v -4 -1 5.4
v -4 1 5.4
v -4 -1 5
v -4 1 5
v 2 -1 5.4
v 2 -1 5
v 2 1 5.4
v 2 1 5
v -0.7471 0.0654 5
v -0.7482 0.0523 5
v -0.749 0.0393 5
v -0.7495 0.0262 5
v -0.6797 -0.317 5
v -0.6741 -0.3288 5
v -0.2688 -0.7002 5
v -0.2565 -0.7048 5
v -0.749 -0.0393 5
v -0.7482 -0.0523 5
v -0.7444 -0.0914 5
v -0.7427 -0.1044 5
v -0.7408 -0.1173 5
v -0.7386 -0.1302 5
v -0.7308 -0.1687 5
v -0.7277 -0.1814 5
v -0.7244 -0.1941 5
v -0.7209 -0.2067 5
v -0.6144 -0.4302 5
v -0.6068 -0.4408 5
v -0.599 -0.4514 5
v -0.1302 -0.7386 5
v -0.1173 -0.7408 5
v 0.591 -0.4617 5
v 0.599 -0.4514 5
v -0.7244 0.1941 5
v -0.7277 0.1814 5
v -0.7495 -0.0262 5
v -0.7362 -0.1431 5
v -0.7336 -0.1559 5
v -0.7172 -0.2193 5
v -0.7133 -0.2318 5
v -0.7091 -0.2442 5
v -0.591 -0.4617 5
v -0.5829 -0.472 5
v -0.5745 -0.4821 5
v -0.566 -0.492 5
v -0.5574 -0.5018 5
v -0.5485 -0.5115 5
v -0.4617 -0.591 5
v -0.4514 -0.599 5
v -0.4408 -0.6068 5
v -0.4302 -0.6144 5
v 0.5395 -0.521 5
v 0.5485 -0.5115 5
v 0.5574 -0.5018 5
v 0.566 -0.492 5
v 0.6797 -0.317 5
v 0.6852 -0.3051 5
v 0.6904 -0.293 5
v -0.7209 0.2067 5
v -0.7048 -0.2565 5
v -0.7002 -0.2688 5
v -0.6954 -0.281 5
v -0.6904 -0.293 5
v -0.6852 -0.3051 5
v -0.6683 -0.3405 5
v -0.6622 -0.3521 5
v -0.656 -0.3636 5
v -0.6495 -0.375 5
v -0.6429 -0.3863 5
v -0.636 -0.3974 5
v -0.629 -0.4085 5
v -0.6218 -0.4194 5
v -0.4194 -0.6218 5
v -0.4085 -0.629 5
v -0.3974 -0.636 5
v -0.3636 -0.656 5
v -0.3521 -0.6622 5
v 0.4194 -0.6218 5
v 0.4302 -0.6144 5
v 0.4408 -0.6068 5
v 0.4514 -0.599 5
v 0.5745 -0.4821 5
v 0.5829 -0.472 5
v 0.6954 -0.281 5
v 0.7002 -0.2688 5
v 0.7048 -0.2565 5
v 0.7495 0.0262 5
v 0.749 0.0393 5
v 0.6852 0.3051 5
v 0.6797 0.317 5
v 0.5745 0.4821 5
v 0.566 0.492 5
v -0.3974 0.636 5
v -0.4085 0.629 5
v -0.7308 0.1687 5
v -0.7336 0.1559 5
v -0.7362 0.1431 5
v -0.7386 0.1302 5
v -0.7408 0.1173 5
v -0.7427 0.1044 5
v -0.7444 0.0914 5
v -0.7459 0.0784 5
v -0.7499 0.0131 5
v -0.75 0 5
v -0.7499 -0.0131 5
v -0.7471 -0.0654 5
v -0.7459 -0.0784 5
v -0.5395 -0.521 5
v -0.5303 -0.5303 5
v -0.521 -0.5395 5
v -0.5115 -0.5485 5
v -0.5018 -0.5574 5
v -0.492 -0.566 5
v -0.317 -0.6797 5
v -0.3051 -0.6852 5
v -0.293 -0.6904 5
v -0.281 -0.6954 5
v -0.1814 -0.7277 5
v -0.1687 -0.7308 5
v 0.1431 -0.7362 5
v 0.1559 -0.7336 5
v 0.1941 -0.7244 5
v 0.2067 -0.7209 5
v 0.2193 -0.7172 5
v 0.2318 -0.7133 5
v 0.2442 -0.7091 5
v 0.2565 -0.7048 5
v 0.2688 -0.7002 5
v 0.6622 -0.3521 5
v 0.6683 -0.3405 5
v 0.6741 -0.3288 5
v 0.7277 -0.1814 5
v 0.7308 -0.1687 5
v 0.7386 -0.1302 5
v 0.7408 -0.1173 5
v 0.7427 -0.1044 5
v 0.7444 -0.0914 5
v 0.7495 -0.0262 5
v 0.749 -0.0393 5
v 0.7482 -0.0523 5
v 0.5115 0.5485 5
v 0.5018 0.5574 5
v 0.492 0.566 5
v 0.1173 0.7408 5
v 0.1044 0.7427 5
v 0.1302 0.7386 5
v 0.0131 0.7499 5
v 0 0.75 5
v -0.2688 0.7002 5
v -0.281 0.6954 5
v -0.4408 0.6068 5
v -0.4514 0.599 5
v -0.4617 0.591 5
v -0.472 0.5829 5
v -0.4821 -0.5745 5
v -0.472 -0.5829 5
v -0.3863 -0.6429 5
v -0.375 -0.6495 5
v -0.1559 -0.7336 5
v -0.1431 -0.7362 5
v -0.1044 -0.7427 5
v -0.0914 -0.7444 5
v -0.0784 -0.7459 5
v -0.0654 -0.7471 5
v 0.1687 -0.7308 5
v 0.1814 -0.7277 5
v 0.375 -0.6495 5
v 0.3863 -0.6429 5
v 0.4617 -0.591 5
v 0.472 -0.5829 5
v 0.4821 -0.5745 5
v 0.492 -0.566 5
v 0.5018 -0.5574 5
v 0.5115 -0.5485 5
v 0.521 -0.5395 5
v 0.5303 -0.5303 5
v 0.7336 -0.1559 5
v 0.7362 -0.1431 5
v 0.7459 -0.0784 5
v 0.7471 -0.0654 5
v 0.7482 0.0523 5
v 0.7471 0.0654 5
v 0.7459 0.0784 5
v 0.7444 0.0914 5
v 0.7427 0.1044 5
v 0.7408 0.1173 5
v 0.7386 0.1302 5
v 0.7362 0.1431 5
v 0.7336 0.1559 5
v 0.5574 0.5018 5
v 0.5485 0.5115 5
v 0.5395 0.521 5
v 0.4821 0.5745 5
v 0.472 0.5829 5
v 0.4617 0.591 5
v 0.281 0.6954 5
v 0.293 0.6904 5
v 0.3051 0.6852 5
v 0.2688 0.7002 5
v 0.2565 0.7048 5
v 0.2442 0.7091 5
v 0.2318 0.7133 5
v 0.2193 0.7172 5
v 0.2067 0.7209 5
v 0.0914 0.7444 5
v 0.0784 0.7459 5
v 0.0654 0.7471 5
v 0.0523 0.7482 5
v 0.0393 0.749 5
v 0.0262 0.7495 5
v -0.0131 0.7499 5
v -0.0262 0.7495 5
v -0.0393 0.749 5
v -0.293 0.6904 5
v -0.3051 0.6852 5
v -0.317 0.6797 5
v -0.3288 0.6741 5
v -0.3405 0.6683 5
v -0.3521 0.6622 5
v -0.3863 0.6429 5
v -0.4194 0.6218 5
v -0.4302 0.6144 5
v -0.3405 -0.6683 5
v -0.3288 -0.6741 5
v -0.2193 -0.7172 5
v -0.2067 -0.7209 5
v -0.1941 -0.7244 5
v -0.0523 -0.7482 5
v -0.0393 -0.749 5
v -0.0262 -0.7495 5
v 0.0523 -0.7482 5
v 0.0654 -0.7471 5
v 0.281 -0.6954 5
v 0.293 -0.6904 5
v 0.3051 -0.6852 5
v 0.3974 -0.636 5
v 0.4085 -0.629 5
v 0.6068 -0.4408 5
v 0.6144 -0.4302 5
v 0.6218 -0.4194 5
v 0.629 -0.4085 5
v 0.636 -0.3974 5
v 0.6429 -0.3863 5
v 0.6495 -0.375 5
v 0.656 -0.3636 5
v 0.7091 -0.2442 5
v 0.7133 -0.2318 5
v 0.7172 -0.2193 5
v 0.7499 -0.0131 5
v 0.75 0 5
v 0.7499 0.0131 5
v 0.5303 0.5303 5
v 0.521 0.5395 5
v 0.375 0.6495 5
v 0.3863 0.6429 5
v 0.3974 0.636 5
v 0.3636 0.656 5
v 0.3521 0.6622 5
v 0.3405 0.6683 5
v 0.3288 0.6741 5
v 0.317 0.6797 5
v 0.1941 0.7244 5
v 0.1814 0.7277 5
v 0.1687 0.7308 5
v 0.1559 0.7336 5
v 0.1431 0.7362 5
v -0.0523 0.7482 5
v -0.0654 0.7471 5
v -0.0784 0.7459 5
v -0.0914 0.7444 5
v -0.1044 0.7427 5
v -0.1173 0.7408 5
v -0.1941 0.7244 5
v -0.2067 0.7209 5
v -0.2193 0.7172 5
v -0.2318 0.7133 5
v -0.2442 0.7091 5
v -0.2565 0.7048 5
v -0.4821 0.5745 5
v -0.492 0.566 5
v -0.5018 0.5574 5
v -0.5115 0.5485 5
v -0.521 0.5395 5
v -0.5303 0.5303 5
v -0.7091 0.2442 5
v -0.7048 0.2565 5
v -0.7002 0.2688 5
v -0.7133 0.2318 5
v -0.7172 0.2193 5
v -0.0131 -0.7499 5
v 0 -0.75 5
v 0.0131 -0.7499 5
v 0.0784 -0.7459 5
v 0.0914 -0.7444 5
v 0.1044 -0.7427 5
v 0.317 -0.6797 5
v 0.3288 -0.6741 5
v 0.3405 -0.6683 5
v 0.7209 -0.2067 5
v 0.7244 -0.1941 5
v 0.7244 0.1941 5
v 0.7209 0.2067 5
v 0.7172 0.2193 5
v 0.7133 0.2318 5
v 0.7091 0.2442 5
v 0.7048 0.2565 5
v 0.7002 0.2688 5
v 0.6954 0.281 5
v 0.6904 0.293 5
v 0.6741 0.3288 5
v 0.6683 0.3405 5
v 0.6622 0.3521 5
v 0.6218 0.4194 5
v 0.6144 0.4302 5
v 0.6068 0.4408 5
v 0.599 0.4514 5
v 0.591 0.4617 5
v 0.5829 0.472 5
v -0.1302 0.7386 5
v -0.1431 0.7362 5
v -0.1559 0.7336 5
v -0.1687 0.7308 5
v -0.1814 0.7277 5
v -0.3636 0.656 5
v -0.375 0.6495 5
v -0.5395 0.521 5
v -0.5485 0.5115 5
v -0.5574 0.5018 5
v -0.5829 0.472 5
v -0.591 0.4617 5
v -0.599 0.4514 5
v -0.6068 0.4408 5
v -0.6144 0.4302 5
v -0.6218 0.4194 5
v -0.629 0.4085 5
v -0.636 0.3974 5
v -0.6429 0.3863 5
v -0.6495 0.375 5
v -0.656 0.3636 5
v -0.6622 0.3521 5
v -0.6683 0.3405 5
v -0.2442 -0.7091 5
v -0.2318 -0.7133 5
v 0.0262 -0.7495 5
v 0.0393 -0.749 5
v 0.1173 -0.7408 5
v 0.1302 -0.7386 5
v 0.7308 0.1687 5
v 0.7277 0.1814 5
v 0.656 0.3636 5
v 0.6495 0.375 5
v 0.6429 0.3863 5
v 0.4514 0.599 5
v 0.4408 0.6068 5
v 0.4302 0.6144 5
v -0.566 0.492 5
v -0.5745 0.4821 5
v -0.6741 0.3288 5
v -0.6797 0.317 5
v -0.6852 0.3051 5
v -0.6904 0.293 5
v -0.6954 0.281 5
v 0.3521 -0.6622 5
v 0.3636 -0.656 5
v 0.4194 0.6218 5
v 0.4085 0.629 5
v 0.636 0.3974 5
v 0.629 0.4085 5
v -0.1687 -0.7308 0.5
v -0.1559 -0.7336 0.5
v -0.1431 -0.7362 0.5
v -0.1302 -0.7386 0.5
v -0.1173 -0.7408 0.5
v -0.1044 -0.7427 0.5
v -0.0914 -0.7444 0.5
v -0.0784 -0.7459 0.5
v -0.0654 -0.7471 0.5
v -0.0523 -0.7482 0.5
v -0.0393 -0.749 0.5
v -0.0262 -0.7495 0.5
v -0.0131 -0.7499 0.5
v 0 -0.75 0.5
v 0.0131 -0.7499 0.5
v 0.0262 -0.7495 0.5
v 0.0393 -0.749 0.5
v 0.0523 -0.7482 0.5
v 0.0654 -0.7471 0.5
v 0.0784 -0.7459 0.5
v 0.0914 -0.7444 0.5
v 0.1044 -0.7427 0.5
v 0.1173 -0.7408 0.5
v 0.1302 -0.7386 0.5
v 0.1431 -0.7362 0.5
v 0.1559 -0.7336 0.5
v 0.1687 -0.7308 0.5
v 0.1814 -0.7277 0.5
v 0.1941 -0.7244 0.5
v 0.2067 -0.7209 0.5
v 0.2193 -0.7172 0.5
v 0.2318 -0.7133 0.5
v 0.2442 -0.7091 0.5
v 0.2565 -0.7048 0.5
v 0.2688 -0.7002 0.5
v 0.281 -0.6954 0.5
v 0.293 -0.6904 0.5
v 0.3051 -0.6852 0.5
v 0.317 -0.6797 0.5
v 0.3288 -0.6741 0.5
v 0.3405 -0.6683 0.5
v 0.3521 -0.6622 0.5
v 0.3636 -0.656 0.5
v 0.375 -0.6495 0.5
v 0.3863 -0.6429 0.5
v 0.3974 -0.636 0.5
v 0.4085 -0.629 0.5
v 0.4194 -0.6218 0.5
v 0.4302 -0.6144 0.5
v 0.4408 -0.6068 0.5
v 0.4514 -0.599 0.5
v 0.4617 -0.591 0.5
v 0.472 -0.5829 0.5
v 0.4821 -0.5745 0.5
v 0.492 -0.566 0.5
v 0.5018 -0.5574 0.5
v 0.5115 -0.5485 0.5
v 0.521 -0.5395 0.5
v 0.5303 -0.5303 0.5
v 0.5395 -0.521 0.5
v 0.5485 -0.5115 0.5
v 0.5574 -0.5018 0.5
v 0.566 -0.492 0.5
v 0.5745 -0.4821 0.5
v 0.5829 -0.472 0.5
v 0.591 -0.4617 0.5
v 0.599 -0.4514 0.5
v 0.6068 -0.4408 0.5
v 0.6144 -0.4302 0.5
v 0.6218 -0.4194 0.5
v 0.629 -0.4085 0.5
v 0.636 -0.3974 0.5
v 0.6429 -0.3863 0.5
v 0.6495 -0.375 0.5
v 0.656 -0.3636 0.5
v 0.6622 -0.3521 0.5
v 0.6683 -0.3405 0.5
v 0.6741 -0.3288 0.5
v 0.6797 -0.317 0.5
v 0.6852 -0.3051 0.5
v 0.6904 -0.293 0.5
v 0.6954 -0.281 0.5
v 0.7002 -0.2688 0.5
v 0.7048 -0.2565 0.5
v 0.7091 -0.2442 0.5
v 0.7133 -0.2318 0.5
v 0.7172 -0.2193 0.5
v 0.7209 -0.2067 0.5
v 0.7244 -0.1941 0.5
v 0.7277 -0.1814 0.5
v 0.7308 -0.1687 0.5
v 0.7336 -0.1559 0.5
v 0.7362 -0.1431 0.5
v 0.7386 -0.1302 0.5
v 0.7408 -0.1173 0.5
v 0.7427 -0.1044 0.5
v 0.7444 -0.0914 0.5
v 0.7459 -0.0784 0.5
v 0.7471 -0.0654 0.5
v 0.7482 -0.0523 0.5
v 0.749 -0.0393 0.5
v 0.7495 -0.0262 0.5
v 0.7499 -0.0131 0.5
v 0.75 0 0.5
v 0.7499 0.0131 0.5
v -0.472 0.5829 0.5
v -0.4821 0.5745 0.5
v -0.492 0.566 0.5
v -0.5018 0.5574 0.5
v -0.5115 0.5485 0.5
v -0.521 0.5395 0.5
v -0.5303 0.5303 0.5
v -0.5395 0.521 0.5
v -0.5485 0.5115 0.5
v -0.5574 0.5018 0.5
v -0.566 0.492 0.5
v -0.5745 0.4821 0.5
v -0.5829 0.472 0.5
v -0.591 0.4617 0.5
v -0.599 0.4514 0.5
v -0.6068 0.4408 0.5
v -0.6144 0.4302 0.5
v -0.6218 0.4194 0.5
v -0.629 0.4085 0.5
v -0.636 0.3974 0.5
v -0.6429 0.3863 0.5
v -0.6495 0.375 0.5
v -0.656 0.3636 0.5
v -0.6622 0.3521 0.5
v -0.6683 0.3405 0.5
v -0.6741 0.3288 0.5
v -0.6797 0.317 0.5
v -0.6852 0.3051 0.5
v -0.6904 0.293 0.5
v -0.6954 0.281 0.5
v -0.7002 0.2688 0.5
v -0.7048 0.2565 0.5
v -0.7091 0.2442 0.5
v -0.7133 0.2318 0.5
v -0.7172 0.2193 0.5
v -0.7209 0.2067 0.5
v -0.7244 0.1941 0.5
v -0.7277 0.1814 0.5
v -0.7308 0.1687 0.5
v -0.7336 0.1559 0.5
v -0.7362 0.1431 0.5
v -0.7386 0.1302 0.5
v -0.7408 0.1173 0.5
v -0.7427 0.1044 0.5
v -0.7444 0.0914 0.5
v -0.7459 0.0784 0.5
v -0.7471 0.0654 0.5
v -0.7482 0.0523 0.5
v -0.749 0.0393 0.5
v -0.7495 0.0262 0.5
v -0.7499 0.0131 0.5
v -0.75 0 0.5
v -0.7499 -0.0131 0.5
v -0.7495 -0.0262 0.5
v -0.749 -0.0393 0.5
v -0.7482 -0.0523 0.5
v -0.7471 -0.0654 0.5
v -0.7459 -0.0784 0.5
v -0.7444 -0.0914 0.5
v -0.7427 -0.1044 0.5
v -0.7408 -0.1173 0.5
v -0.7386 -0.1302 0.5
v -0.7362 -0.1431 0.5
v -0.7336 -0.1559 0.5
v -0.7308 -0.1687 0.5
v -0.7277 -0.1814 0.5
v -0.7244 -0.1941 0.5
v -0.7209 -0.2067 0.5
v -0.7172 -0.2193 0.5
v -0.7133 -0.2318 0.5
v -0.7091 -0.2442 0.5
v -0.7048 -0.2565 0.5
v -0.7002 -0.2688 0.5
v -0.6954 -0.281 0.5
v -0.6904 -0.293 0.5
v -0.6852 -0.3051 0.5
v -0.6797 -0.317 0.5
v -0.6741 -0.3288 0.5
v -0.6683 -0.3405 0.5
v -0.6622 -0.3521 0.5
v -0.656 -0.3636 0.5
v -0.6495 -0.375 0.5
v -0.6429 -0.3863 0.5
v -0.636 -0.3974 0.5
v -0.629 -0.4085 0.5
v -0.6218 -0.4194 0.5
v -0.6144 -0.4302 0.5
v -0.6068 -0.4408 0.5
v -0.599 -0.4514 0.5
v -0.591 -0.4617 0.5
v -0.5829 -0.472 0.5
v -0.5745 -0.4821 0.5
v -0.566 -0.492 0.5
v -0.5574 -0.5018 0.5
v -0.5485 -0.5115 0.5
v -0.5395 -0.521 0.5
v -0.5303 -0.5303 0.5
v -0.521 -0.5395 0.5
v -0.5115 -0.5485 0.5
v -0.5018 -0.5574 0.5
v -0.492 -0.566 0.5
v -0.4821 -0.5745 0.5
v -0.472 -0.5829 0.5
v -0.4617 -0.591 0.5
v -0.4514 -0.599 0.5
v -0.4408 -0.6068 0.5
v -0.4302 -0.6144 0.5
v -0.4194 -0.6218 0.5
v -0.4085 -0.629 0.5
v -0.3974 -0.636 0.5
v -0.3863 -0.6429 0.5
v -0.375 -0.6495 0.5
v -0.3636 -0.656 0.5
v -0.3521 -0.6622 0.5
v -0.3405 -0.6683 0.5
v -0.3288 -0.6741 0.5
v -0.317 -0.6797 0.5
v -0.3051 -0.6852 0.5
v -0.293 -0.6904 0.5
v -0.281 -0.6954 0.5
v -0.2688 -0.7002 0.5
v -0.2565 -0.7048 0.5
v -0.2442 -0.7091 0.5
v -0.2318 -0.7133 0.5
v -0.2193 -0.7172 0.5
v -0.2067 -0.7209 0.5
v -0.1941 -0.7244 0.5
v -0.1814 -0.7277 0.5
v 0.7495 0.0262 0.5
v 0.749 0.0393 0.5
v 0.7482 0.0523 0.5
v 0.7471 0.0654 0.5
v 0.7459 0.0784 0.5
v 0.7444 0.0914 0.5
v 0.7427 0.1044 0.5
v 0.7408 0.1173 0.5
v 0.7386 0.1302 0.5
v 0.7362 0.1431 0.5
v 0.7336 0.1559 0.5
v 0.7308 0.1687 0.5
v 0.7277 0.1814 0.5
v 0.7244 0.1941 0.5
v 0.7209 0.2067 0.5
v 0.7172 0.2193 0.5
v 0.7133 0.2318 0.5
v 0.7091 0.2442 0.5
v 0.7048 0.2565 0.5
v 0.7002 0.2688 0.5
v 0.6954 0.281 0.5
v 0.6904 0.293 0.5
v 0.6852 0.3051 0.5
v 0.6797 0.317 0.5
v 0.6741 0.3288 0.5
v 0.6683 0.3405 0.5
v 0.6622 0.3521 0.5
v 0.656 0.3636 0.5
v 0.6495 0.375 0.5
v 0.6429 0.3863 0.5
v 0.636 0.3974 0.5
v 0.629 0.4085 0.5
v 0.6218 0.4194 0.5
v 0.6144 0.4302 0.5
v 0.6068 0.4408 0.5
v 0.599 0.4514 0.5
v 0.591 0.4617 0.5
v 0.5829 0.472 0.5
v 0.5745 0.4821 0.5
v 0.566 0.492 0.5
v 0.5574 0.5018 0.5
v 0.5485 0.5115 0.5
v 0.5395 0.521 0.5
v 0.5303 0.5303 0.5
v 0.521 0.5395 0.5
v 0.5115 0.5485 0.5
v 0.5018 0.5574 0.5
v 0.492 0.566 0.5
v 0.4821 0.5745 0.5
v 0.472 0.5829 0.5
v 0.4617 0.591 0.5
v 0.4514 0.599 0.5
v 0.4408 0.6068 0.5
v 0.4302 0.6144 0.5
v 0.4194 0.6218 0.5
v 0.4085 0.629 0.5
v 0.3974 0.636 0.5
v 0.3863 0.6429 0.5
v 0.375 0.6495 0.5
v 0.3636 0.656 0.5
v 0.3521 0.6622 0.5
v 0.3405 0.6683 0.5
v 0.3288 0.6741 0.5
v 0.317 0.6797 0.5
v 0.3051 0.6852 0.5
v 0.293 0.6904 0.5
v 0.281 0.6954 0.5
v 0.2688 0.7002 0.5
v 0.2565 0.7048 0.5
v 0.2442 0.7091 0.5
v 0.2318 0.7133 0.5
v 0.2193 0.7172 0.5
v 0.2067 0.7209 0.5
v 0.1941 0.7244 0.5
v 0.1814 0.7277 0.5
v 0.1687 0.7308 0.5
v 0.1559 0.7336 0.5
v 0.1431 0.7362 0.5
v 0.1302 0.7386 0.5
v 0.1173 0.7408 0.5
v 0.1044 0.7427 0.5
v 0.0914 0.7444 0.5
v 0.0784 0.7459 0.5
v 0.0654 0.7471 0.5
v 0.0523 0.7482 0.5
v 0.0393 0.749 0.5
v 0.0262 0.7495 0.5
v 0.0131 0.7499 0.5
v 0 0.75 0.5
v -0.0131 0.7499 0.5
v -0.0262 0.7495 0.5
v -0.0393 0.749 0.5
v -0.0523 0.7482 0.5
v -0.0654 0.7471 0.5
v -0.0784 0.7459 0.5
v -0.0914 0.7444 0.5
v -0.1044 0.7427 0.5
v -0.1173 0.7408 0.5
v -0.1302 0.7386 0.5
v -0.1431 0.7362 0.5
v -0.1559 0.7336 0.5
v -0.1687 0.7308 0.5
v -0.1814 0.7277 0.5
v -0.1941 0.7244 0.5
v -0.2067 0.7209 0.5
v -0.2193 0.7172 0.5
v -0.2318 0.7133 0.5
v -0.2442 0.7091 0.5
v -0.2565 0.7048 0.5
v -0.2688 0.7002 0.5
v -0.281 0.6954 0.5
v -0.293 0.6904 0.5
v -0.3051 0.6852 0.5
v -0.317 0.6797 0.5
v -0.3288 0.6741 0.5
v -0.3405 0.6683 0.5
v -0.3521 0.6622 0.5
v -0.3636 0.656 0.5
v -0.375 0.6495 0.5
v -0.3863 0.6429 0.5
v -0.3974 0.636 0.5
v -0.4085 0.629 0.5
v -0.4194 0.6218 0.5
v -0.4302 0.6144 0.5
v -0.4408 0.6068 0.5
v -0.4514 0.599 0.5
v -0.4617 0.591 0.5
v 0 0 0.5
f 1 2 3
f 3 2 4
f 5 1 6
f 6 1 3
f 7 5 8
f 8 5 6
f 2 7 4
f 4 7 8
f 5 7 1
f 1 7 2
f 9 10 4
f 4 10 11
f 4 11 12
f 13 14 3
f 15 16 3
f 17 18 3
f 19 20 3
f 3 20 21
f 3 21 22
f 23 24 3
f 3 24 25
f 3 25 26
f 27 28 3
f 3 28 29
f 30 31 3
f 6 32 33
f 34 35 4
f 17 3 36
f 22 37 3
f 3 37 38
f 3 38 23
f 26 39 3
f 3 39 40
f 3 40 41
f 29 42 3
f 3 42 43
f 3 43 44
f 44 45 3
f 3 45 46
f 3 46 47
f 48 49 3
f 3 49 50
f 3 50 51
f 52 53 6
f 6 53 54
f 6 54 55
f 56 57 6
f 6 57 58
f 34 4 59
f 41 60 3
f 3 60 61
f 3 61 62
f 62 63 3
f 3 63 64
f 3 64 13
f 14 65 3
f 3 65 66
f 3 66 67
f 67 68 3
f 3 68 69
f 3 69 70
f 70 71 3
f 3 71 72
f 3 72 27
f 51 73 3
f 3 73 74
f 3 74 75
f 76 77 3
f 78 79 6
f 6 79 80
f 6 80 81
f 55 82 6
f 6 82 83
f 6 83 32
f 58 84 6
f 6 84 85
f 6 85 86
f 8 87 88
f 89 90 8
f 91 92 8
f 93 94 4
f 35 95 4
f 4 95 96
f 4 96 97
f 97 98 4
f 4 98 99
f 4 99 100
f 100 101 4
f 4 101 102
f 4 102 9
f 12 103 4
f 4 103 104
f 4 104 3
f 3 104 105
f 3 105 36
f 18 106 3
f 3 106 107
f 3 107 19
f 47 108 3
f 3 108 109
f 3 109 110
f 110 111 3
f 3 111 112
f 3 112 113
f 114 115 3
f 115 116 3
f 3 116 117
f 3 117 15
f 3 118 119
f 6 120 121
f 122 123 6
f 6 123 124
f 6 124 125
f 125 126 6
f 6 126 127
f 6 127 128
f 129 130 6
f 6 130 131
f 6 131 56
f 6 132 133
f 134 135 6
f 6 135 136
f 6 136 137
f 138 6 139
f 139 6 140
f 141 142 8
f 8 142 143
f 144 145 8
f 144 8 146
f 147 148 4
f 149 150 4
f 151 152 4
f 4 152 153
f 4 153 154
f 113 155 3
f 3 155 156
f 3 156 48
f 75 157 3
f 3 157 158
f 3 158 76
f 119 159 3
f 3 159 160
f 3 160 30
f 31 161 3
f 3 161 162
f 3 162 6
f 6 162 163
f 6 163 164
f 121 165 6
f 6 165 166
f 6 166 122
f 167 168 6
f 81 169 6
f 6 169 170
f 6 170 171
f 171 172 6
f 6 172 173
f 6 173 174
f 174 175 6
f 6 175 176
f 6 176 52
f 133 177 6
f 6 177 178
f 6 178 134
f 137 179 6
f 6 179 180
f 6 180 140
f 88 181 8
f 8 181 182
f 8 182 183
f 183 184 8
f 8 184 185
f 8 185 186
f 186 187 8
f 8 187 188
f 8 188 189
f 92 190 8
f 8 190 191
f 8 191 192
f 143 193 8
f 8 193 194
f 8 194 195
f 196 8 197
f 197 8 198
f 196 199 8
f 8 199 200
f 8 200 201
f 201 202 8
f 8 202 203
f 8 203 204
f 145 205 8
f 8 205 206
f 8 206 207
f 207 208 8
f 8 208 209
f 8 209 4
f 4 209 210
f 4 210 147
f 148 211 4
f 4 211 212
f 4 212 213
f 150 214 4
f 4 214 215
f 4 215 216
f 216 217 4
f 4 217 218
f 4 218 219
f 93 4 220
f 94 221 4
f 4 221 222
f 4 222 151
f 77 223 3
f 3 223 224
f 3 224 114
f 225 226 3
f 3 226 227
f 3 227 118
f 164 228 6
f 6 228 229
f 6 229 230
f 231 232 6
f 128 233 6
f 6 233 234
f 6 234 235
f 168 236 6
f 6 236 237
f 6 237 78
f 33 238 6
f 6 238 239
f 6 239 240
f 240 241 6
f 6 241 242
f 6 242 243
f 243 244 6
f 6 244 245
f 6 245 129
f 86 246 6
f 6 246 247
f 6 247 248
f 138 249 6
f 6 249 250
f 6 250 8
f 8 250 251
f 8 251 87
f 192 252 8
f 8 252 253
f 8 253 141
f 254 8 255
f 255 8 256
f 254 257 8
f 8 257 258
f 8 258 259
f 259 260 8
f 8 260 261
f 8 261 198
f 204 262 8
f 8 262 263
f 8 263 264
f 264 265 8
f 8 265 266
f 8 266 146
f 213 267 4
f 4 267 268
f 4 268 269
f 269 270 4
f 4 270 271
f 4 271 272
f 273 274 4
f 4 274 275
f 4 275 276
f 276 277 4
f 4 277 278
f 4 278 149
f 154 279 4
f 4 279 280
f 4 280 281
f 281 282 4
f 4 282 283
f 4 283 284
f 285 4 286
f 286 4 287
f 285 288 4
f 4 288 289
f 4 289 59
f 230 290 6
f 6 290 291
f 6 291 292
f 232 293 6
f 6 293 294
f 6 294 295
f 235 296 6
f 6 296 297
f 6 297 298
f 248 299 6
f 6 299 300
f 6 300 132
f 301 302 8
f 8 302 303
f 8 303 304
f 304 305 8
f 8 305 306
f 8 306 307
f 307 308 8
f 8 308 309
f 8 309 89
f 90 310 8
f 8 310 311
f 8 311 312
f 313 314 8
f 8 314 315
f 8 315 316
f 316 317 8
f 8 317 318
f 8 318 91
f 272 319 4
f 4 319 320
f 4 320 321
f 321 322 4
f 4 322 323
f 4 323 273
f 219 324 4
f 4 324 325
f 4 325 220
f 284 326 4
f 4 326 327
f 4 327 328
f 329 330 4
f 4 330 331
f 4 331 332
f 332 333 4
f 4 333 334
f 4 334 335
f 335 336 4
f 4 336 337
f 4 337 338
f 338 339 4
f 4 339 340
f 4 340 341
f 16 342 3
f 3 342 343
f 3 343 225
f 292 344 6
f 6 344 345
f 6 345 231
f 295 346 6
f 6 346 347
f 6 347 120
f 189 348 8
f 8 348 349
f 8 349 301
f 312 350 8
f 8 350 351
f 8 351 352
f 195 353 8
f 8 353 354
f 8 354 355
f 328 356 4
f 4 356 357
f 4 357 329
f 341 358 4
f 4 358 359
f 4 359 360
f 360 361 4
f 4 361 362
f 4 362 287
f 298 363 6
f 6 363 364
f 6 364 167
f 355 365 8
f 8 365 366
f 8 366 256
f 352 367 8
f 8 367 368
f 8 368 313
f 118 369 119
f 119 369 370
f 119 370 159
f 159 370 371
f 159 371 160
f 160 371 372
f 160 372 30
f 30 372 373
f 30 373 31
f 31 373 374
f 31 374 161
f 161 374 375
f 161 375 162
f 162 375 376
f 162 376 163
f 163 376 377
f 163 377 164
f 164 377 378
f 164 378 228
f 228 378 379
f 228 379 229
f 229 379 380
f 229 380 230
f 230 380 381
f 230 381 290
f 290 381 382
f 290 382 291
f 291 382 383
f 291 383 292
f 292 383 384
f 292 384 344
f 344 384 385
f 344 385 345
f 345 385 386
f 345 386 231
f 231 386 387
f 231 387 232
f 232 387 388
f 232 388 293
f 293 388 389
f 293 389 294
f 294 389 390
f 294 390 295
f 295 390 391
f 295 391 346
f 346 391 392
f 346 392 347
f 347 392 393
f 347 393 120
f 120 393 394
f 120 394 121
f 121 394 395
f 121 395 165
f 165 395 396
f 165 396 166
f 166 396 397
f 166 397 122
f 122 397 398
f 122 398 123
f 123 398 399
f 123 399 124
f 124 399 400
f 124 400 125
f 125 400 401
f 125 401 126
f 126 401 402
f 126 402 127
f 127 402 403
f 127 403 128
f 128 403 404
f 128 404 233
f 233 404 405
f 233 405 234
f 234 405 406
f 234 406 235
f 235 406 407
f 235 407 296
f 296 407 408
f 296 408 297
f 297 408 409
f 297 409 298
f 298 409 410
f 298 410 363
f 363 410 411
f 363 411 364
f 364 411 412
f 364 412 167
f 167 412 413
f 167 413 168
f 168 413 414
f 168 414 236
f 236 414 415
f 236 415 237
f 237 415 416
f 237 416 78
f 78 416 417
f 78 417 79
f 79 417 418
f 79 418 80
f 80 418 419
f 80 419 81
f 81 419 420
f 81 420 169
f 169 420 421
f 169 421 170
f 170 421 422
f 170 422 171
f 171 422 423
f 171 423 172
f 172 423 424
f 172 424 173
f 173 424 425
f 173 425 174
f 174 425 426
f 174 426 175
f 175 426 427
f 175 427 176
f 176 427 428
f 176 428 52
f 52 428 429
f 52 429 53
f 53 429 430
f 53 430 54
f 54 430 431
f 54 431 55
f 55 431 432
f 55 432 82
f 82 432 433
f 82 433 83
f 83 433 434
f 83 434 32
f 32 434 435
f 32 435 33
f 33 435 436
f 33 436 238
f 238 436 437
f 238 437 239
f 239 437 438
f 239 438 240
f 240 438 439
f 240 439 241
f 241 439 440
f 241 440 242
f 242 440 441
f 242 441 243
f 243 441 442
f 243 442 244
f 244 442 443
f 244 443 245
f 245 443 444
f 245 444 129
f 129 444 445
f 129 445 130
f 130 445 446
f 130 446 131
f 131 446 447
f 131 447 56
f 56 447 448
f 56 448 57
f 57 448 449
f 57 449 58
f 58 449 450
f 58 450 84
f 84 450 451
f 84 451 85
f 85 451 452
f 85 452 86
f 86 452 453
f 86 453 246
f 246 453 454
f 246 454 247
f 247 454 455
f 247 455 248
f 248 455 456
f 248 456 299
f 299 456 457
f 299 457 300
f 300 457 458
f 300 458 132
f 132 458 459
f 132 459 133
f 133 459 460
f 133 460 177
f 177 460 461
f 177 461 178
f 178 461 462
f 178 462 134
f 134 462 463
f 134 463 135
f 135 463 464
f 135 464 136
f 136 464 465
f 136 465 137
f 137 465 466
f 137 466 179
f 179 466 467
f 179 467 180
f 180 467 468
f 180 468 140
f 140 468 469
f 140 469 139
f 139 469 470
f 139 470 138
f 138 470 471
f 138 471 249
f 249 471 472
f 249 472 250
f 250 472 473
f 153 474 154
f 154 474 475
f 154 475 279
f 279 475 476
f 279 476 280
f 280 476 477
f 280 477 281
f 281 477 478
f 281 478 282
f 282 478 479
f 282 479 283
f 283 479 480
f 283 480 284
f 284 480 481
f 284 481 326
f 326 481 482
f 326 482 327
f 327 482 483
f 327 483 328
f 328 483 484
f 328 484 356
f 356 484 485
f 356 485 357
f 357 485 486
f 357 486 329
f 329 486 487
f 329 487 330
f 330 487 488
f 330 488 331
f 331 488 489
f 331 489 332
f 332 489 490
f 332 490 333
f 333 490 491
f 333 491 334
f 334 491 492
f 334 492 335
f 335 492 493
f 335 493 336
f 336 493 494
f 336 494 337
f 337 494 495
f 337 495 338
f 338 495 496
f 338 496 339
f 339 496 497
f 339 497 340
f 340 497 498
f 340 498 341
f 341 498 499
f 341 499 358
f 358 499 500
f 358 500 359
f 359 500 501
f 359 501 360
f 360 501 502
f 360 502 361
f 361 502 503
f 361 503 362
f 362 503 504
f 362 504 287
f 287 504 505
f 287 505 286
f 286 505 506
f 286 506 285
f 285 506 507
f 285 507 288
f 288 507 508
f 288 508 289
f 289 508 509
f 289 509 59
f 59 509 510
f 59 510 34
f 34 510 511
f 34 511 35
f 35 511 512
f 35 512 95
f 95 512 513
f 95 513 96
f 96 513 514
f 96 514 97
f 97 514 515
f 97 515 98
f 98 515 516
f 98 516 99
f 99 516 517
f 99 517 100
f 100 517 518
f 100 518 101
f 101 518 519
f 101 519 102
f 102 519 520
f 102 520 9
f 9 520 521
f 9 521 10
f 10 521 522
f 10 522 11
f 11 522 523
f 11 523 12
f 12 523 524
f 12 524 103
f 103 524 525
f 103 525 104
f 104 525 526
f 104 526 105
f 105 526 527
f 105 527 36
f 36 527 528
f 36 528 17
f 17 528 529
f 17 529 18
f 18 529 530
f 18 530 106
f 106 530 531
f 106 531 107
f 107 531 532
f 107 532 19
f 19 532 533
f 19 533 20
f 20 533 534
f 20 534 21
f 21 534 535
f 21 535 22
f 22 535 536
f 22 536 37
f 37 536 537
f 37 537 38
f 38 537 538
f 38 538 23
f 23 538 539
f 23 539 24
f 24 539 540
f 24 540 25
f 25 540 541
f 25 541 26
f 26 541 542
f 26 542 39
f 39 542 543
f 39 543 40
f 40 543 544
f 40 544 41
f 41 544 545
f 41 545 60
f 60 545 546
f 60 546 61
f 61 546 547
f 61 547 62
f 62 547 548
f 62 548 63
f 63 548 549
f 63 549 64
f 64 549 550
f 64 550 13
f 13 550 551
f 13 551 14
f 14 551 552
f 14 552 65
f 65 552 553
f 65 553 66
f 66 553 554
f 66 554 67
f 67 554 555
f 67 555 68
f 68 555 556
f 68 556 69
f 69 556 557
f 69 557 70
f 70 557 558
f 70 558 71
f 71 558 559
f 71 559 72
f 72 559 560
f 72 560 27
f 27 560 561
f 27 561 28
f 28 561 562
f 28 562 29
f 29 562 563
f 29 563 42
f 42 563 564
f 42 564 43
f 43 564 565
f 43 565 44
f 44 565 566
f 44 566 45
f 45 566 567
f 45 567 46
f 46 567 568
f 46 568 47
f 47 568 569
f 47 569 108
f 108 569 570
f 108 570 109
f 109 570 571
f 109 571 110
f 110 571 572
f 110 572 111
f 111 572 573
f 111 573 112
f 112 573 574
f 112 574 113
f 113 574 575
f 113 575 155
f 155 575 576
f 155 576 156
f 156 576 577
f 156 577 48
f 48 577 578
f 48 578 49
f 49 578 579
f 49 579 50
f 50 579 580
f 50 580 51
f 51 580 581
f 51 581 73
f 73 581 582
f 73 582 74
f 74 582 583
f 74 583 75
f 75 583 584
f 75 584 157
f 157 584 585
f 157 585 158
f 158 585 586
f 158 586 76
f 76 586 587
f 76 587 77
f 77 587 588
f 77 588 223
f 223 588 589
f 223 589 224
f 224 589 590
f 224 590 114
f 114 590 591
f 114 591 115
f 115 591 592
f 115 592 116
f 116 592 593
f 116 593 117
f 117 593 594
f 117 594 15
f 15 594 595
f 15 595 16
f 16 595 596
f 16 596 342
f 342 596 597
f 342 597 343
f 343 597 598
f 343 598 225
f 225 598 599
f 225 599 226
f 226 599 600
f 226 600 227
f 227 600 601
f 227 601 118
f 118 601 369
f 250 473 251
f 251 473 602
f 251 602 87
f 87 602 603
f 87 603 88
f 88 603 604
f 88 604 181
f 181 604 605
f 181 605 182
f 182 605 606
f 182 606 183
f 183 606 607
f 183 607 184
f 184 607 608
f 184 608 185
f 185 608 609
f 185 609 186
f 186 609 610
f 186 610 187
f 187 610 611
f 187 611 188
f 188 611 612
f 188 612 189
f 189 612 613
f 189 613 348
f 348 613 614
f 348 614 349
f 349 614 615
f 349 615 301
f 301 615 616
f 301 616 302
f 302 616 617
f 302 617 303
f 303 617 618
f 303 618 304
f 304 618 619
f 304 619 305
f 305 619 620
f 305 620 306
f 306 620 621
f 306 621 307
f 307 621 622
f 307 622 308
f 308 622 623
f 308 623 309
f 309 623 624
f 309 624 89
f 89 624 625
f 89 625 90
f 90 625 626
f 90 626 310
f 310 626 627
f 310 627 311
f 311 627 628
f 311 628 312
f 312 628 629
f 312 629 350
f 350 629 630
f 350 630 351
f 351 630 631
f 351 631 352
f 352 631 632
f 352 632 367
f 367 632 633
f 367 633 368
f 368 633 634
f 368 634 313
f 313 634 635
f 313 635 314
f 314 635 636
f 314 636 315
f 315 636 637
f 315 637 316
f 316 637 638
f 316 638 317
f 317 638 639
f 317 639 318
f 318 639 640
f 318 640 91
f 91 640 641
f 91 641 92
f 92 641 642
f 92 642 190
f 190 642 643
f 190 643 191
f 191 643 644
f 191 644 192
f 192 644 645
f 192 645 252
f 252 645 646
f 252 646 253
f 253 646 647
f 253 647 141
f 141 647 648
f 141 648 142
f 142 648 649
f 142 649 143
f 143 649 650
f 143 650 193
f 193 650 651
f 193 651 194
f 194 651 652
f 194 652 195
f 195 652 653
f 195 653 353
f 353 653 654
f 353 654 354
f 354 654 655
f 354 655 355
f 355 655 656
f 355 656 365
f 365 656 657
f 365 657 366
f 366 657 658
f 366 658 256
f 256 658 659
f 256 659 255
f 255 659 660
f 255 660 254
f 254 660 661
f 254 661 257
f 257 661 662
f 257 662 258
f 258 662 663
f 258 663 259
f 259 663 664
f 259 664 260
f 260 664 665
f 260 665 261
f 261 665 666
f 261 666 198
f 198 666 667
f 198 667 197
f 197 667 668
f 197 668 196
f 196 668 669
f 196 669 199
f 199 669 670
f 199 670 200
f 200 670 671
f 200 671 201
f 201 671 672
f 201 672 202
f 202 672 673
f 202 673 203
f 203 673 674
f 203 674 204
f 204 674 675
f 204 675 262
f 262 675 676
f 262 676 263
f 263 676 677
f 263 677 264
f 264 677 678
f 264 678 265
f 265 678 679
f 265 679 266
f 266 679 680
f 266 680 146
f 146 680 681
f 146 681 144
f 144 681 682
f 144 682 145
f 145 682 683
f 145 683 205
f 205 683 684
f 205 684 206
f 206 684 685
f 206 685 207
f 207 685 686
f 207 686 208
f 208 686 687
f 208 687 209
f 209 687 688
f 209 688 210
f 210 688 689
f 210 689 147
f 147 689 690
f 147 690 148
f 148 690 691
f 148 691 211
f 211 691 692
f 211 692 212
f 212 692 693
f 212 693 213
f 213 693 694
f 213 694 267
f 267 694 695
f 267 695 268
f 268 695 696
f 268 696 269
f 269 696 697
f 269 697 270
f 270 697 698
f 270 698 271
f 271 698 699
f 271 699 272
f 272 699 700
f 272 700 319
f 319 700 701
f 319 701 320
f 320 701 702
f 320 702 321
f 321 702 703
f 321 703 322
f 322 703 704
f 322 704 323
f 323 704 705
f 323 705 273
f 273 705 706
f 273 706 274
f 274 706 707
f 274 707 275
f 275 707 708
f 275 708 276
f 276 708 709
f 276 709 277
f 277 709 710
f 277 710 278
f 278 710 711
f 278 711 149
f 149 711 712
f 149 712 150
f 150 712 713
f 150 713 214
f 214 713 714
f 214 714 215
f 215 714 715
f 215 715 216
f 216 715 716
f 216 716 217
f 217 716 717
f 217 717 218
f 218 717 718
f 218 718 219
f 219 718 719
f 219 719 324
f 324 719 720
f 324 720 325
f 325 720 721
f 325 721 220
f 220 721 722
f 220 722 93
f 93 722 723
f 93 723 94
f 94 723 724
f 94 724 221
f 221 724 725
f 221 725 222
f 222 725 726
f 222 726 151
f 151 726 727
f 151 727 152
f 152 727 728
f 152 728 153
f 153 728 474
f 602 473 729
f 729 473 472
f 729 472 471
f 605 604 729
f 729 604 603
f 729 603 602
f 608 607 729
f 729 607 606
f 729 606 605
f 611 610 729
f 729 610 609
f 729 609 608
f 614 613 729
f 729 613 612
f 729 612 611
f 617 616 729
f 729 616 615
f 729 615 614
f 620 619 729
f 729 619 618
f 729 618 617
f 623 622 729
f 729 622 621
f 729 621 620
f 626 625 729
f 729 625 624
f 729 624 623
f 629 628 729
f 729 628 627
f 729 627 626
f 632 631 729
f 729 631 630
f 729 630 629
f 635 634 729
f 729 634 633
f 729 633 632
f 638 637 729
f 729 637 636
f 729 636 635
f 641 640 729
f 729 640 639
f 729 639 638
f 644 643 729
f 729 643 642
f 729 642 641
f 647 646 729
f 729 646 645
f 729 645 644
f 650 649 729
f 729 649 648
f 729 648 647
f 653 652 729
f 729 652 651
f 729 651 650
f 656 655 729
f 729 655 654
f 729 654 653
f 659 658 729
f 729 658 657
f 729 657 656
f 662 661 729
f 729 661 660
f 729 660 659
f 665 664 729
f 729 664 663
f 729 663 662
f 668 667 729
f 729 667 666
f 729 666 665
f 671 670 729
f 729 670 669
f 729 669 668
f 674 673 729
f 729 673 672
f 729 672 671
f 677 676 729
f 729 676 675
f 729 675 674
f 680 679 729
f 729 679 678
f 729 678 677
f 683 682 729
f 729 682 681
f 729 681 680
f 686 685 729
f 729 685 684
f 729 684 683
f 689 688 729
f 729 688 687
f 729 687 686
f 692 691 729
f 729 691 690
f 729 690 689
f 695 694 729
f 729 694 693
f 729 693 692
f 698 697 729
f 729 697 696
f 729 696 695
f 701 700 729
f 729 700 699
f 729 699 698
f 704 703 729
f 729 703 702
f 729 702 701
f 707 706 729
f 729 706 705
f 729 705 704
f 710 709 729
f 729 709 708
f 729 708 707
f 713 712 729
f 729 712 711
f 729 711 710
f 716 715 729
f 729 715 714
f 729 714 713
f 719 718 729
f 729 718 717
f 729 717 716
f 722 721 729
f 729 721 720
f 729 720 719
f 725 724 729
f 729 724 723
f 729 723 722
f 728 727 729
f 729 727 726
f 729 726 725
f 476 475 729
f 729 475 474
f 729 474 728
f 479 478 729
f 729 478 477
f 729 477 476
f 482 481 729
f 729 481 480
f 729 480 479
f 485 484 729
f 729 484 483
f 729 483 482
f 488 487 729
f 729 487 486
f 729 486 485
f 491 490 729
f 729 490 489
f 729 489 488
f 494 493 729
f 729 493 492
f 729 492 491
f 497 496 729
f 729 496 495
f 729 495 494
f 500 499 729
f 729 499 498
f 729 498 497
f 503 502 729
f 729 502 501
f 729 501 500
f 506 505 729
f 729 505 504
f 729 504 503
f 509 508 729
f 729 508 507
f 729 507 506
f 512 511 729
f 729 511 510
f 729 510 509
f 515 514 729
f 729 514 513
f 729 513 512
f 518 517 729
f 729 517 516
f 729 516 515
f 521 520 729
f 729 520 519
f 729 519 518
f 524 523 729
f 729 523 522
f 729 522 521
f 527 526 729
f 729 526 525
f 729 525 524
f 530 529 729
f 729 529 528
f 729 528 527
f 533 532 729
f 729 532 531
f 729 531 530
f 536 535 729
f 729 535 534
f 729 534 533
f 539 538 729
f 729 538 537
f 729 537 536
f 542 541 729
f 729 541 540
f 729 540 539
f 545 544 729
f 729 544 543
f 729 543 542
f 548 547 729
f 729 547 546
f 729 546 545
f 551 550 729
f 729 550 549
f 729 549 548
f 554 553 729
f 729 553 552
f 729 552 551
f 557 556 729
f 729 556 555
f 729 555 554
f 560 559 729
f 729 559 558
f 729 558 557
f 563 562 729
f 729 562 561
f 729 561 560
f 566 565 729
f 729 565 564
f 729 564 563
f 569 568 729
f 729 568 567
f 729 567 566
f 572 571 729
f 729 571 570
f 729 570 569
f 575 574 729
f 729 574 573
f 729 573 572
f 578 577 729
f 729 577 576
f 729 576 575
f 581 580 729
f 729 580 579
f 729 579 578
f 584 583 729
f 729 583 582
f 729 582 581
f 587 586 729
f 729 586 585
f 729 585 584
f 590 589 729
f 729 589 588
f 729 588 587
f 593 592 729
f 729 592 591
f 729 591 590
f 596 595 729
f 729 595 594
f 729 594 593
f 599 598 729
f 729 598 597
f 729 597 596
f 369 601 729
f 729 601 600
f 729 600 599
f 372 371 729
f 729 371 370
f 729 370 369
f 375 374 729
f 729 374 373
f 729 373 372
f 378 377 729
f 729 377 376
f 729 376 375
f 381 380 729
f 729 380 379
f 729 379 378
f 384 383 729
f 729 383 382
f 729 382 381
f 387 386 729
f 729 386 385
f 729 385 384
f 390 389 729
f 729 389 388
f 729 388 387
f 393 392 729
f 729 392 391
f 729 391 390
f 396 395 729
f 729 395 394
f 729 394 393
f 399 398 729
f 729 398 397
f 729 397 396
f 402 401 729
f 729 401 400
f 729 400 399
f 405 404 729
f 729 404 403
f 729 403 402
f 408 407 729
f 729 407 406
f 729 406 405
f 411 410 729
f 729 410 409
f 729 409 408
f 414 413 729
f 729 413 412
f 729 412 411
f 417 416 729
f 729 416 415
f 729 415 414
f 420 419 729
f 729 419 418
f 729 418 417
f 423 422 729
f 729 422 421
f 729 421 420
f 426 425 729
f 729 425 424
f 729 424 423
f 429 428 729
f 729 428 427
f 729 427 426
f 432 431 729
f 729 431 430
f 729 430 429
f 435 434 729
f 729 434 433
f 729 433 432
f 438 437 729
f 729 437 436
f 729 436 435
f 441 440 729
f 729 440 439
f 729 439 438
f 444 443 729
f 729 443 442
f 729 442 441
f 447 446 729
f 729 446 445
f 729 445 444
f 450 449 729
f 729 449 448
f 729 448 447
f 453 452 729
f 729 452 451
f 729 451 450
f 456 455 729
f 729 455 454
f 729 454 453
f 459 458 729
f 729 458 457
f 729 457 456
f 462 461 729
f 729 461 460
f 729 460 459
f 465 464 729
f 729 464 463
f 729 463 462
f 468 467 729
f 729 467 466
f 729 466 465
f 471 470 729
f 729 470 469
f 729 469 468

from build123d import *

# Parameters (mm, degrees)
SKETCH4_W           = 6
SKETCH4_H           = 2
BOSS_EXTRUDE3_DEPTH = 0.4
SKETCH6_R           = 0.75
BOSS_EXTRUDE4_DEPTH = 4.5


with BuildPart() as part:
    # Sketch4 → Boss-Extrude3 (new body)
    with BuildSketch(Plane.XY.offset(5)):
        with Locations((-1, 0)):
            Rectangle(SKETCH4_W, SKETCH4_H)
    extrude(amount=BOSS_EXTRUDE3_DEPTH)

    # Sketch6 → Boss-Extrude4 (add)
    with BuildSketch(Plane.XY.offset(5)):
        Circle(SKETCH6_R)
    extrude(amount=-BOSS_EXTRUDE4_DEPTH)


solid = part.part
